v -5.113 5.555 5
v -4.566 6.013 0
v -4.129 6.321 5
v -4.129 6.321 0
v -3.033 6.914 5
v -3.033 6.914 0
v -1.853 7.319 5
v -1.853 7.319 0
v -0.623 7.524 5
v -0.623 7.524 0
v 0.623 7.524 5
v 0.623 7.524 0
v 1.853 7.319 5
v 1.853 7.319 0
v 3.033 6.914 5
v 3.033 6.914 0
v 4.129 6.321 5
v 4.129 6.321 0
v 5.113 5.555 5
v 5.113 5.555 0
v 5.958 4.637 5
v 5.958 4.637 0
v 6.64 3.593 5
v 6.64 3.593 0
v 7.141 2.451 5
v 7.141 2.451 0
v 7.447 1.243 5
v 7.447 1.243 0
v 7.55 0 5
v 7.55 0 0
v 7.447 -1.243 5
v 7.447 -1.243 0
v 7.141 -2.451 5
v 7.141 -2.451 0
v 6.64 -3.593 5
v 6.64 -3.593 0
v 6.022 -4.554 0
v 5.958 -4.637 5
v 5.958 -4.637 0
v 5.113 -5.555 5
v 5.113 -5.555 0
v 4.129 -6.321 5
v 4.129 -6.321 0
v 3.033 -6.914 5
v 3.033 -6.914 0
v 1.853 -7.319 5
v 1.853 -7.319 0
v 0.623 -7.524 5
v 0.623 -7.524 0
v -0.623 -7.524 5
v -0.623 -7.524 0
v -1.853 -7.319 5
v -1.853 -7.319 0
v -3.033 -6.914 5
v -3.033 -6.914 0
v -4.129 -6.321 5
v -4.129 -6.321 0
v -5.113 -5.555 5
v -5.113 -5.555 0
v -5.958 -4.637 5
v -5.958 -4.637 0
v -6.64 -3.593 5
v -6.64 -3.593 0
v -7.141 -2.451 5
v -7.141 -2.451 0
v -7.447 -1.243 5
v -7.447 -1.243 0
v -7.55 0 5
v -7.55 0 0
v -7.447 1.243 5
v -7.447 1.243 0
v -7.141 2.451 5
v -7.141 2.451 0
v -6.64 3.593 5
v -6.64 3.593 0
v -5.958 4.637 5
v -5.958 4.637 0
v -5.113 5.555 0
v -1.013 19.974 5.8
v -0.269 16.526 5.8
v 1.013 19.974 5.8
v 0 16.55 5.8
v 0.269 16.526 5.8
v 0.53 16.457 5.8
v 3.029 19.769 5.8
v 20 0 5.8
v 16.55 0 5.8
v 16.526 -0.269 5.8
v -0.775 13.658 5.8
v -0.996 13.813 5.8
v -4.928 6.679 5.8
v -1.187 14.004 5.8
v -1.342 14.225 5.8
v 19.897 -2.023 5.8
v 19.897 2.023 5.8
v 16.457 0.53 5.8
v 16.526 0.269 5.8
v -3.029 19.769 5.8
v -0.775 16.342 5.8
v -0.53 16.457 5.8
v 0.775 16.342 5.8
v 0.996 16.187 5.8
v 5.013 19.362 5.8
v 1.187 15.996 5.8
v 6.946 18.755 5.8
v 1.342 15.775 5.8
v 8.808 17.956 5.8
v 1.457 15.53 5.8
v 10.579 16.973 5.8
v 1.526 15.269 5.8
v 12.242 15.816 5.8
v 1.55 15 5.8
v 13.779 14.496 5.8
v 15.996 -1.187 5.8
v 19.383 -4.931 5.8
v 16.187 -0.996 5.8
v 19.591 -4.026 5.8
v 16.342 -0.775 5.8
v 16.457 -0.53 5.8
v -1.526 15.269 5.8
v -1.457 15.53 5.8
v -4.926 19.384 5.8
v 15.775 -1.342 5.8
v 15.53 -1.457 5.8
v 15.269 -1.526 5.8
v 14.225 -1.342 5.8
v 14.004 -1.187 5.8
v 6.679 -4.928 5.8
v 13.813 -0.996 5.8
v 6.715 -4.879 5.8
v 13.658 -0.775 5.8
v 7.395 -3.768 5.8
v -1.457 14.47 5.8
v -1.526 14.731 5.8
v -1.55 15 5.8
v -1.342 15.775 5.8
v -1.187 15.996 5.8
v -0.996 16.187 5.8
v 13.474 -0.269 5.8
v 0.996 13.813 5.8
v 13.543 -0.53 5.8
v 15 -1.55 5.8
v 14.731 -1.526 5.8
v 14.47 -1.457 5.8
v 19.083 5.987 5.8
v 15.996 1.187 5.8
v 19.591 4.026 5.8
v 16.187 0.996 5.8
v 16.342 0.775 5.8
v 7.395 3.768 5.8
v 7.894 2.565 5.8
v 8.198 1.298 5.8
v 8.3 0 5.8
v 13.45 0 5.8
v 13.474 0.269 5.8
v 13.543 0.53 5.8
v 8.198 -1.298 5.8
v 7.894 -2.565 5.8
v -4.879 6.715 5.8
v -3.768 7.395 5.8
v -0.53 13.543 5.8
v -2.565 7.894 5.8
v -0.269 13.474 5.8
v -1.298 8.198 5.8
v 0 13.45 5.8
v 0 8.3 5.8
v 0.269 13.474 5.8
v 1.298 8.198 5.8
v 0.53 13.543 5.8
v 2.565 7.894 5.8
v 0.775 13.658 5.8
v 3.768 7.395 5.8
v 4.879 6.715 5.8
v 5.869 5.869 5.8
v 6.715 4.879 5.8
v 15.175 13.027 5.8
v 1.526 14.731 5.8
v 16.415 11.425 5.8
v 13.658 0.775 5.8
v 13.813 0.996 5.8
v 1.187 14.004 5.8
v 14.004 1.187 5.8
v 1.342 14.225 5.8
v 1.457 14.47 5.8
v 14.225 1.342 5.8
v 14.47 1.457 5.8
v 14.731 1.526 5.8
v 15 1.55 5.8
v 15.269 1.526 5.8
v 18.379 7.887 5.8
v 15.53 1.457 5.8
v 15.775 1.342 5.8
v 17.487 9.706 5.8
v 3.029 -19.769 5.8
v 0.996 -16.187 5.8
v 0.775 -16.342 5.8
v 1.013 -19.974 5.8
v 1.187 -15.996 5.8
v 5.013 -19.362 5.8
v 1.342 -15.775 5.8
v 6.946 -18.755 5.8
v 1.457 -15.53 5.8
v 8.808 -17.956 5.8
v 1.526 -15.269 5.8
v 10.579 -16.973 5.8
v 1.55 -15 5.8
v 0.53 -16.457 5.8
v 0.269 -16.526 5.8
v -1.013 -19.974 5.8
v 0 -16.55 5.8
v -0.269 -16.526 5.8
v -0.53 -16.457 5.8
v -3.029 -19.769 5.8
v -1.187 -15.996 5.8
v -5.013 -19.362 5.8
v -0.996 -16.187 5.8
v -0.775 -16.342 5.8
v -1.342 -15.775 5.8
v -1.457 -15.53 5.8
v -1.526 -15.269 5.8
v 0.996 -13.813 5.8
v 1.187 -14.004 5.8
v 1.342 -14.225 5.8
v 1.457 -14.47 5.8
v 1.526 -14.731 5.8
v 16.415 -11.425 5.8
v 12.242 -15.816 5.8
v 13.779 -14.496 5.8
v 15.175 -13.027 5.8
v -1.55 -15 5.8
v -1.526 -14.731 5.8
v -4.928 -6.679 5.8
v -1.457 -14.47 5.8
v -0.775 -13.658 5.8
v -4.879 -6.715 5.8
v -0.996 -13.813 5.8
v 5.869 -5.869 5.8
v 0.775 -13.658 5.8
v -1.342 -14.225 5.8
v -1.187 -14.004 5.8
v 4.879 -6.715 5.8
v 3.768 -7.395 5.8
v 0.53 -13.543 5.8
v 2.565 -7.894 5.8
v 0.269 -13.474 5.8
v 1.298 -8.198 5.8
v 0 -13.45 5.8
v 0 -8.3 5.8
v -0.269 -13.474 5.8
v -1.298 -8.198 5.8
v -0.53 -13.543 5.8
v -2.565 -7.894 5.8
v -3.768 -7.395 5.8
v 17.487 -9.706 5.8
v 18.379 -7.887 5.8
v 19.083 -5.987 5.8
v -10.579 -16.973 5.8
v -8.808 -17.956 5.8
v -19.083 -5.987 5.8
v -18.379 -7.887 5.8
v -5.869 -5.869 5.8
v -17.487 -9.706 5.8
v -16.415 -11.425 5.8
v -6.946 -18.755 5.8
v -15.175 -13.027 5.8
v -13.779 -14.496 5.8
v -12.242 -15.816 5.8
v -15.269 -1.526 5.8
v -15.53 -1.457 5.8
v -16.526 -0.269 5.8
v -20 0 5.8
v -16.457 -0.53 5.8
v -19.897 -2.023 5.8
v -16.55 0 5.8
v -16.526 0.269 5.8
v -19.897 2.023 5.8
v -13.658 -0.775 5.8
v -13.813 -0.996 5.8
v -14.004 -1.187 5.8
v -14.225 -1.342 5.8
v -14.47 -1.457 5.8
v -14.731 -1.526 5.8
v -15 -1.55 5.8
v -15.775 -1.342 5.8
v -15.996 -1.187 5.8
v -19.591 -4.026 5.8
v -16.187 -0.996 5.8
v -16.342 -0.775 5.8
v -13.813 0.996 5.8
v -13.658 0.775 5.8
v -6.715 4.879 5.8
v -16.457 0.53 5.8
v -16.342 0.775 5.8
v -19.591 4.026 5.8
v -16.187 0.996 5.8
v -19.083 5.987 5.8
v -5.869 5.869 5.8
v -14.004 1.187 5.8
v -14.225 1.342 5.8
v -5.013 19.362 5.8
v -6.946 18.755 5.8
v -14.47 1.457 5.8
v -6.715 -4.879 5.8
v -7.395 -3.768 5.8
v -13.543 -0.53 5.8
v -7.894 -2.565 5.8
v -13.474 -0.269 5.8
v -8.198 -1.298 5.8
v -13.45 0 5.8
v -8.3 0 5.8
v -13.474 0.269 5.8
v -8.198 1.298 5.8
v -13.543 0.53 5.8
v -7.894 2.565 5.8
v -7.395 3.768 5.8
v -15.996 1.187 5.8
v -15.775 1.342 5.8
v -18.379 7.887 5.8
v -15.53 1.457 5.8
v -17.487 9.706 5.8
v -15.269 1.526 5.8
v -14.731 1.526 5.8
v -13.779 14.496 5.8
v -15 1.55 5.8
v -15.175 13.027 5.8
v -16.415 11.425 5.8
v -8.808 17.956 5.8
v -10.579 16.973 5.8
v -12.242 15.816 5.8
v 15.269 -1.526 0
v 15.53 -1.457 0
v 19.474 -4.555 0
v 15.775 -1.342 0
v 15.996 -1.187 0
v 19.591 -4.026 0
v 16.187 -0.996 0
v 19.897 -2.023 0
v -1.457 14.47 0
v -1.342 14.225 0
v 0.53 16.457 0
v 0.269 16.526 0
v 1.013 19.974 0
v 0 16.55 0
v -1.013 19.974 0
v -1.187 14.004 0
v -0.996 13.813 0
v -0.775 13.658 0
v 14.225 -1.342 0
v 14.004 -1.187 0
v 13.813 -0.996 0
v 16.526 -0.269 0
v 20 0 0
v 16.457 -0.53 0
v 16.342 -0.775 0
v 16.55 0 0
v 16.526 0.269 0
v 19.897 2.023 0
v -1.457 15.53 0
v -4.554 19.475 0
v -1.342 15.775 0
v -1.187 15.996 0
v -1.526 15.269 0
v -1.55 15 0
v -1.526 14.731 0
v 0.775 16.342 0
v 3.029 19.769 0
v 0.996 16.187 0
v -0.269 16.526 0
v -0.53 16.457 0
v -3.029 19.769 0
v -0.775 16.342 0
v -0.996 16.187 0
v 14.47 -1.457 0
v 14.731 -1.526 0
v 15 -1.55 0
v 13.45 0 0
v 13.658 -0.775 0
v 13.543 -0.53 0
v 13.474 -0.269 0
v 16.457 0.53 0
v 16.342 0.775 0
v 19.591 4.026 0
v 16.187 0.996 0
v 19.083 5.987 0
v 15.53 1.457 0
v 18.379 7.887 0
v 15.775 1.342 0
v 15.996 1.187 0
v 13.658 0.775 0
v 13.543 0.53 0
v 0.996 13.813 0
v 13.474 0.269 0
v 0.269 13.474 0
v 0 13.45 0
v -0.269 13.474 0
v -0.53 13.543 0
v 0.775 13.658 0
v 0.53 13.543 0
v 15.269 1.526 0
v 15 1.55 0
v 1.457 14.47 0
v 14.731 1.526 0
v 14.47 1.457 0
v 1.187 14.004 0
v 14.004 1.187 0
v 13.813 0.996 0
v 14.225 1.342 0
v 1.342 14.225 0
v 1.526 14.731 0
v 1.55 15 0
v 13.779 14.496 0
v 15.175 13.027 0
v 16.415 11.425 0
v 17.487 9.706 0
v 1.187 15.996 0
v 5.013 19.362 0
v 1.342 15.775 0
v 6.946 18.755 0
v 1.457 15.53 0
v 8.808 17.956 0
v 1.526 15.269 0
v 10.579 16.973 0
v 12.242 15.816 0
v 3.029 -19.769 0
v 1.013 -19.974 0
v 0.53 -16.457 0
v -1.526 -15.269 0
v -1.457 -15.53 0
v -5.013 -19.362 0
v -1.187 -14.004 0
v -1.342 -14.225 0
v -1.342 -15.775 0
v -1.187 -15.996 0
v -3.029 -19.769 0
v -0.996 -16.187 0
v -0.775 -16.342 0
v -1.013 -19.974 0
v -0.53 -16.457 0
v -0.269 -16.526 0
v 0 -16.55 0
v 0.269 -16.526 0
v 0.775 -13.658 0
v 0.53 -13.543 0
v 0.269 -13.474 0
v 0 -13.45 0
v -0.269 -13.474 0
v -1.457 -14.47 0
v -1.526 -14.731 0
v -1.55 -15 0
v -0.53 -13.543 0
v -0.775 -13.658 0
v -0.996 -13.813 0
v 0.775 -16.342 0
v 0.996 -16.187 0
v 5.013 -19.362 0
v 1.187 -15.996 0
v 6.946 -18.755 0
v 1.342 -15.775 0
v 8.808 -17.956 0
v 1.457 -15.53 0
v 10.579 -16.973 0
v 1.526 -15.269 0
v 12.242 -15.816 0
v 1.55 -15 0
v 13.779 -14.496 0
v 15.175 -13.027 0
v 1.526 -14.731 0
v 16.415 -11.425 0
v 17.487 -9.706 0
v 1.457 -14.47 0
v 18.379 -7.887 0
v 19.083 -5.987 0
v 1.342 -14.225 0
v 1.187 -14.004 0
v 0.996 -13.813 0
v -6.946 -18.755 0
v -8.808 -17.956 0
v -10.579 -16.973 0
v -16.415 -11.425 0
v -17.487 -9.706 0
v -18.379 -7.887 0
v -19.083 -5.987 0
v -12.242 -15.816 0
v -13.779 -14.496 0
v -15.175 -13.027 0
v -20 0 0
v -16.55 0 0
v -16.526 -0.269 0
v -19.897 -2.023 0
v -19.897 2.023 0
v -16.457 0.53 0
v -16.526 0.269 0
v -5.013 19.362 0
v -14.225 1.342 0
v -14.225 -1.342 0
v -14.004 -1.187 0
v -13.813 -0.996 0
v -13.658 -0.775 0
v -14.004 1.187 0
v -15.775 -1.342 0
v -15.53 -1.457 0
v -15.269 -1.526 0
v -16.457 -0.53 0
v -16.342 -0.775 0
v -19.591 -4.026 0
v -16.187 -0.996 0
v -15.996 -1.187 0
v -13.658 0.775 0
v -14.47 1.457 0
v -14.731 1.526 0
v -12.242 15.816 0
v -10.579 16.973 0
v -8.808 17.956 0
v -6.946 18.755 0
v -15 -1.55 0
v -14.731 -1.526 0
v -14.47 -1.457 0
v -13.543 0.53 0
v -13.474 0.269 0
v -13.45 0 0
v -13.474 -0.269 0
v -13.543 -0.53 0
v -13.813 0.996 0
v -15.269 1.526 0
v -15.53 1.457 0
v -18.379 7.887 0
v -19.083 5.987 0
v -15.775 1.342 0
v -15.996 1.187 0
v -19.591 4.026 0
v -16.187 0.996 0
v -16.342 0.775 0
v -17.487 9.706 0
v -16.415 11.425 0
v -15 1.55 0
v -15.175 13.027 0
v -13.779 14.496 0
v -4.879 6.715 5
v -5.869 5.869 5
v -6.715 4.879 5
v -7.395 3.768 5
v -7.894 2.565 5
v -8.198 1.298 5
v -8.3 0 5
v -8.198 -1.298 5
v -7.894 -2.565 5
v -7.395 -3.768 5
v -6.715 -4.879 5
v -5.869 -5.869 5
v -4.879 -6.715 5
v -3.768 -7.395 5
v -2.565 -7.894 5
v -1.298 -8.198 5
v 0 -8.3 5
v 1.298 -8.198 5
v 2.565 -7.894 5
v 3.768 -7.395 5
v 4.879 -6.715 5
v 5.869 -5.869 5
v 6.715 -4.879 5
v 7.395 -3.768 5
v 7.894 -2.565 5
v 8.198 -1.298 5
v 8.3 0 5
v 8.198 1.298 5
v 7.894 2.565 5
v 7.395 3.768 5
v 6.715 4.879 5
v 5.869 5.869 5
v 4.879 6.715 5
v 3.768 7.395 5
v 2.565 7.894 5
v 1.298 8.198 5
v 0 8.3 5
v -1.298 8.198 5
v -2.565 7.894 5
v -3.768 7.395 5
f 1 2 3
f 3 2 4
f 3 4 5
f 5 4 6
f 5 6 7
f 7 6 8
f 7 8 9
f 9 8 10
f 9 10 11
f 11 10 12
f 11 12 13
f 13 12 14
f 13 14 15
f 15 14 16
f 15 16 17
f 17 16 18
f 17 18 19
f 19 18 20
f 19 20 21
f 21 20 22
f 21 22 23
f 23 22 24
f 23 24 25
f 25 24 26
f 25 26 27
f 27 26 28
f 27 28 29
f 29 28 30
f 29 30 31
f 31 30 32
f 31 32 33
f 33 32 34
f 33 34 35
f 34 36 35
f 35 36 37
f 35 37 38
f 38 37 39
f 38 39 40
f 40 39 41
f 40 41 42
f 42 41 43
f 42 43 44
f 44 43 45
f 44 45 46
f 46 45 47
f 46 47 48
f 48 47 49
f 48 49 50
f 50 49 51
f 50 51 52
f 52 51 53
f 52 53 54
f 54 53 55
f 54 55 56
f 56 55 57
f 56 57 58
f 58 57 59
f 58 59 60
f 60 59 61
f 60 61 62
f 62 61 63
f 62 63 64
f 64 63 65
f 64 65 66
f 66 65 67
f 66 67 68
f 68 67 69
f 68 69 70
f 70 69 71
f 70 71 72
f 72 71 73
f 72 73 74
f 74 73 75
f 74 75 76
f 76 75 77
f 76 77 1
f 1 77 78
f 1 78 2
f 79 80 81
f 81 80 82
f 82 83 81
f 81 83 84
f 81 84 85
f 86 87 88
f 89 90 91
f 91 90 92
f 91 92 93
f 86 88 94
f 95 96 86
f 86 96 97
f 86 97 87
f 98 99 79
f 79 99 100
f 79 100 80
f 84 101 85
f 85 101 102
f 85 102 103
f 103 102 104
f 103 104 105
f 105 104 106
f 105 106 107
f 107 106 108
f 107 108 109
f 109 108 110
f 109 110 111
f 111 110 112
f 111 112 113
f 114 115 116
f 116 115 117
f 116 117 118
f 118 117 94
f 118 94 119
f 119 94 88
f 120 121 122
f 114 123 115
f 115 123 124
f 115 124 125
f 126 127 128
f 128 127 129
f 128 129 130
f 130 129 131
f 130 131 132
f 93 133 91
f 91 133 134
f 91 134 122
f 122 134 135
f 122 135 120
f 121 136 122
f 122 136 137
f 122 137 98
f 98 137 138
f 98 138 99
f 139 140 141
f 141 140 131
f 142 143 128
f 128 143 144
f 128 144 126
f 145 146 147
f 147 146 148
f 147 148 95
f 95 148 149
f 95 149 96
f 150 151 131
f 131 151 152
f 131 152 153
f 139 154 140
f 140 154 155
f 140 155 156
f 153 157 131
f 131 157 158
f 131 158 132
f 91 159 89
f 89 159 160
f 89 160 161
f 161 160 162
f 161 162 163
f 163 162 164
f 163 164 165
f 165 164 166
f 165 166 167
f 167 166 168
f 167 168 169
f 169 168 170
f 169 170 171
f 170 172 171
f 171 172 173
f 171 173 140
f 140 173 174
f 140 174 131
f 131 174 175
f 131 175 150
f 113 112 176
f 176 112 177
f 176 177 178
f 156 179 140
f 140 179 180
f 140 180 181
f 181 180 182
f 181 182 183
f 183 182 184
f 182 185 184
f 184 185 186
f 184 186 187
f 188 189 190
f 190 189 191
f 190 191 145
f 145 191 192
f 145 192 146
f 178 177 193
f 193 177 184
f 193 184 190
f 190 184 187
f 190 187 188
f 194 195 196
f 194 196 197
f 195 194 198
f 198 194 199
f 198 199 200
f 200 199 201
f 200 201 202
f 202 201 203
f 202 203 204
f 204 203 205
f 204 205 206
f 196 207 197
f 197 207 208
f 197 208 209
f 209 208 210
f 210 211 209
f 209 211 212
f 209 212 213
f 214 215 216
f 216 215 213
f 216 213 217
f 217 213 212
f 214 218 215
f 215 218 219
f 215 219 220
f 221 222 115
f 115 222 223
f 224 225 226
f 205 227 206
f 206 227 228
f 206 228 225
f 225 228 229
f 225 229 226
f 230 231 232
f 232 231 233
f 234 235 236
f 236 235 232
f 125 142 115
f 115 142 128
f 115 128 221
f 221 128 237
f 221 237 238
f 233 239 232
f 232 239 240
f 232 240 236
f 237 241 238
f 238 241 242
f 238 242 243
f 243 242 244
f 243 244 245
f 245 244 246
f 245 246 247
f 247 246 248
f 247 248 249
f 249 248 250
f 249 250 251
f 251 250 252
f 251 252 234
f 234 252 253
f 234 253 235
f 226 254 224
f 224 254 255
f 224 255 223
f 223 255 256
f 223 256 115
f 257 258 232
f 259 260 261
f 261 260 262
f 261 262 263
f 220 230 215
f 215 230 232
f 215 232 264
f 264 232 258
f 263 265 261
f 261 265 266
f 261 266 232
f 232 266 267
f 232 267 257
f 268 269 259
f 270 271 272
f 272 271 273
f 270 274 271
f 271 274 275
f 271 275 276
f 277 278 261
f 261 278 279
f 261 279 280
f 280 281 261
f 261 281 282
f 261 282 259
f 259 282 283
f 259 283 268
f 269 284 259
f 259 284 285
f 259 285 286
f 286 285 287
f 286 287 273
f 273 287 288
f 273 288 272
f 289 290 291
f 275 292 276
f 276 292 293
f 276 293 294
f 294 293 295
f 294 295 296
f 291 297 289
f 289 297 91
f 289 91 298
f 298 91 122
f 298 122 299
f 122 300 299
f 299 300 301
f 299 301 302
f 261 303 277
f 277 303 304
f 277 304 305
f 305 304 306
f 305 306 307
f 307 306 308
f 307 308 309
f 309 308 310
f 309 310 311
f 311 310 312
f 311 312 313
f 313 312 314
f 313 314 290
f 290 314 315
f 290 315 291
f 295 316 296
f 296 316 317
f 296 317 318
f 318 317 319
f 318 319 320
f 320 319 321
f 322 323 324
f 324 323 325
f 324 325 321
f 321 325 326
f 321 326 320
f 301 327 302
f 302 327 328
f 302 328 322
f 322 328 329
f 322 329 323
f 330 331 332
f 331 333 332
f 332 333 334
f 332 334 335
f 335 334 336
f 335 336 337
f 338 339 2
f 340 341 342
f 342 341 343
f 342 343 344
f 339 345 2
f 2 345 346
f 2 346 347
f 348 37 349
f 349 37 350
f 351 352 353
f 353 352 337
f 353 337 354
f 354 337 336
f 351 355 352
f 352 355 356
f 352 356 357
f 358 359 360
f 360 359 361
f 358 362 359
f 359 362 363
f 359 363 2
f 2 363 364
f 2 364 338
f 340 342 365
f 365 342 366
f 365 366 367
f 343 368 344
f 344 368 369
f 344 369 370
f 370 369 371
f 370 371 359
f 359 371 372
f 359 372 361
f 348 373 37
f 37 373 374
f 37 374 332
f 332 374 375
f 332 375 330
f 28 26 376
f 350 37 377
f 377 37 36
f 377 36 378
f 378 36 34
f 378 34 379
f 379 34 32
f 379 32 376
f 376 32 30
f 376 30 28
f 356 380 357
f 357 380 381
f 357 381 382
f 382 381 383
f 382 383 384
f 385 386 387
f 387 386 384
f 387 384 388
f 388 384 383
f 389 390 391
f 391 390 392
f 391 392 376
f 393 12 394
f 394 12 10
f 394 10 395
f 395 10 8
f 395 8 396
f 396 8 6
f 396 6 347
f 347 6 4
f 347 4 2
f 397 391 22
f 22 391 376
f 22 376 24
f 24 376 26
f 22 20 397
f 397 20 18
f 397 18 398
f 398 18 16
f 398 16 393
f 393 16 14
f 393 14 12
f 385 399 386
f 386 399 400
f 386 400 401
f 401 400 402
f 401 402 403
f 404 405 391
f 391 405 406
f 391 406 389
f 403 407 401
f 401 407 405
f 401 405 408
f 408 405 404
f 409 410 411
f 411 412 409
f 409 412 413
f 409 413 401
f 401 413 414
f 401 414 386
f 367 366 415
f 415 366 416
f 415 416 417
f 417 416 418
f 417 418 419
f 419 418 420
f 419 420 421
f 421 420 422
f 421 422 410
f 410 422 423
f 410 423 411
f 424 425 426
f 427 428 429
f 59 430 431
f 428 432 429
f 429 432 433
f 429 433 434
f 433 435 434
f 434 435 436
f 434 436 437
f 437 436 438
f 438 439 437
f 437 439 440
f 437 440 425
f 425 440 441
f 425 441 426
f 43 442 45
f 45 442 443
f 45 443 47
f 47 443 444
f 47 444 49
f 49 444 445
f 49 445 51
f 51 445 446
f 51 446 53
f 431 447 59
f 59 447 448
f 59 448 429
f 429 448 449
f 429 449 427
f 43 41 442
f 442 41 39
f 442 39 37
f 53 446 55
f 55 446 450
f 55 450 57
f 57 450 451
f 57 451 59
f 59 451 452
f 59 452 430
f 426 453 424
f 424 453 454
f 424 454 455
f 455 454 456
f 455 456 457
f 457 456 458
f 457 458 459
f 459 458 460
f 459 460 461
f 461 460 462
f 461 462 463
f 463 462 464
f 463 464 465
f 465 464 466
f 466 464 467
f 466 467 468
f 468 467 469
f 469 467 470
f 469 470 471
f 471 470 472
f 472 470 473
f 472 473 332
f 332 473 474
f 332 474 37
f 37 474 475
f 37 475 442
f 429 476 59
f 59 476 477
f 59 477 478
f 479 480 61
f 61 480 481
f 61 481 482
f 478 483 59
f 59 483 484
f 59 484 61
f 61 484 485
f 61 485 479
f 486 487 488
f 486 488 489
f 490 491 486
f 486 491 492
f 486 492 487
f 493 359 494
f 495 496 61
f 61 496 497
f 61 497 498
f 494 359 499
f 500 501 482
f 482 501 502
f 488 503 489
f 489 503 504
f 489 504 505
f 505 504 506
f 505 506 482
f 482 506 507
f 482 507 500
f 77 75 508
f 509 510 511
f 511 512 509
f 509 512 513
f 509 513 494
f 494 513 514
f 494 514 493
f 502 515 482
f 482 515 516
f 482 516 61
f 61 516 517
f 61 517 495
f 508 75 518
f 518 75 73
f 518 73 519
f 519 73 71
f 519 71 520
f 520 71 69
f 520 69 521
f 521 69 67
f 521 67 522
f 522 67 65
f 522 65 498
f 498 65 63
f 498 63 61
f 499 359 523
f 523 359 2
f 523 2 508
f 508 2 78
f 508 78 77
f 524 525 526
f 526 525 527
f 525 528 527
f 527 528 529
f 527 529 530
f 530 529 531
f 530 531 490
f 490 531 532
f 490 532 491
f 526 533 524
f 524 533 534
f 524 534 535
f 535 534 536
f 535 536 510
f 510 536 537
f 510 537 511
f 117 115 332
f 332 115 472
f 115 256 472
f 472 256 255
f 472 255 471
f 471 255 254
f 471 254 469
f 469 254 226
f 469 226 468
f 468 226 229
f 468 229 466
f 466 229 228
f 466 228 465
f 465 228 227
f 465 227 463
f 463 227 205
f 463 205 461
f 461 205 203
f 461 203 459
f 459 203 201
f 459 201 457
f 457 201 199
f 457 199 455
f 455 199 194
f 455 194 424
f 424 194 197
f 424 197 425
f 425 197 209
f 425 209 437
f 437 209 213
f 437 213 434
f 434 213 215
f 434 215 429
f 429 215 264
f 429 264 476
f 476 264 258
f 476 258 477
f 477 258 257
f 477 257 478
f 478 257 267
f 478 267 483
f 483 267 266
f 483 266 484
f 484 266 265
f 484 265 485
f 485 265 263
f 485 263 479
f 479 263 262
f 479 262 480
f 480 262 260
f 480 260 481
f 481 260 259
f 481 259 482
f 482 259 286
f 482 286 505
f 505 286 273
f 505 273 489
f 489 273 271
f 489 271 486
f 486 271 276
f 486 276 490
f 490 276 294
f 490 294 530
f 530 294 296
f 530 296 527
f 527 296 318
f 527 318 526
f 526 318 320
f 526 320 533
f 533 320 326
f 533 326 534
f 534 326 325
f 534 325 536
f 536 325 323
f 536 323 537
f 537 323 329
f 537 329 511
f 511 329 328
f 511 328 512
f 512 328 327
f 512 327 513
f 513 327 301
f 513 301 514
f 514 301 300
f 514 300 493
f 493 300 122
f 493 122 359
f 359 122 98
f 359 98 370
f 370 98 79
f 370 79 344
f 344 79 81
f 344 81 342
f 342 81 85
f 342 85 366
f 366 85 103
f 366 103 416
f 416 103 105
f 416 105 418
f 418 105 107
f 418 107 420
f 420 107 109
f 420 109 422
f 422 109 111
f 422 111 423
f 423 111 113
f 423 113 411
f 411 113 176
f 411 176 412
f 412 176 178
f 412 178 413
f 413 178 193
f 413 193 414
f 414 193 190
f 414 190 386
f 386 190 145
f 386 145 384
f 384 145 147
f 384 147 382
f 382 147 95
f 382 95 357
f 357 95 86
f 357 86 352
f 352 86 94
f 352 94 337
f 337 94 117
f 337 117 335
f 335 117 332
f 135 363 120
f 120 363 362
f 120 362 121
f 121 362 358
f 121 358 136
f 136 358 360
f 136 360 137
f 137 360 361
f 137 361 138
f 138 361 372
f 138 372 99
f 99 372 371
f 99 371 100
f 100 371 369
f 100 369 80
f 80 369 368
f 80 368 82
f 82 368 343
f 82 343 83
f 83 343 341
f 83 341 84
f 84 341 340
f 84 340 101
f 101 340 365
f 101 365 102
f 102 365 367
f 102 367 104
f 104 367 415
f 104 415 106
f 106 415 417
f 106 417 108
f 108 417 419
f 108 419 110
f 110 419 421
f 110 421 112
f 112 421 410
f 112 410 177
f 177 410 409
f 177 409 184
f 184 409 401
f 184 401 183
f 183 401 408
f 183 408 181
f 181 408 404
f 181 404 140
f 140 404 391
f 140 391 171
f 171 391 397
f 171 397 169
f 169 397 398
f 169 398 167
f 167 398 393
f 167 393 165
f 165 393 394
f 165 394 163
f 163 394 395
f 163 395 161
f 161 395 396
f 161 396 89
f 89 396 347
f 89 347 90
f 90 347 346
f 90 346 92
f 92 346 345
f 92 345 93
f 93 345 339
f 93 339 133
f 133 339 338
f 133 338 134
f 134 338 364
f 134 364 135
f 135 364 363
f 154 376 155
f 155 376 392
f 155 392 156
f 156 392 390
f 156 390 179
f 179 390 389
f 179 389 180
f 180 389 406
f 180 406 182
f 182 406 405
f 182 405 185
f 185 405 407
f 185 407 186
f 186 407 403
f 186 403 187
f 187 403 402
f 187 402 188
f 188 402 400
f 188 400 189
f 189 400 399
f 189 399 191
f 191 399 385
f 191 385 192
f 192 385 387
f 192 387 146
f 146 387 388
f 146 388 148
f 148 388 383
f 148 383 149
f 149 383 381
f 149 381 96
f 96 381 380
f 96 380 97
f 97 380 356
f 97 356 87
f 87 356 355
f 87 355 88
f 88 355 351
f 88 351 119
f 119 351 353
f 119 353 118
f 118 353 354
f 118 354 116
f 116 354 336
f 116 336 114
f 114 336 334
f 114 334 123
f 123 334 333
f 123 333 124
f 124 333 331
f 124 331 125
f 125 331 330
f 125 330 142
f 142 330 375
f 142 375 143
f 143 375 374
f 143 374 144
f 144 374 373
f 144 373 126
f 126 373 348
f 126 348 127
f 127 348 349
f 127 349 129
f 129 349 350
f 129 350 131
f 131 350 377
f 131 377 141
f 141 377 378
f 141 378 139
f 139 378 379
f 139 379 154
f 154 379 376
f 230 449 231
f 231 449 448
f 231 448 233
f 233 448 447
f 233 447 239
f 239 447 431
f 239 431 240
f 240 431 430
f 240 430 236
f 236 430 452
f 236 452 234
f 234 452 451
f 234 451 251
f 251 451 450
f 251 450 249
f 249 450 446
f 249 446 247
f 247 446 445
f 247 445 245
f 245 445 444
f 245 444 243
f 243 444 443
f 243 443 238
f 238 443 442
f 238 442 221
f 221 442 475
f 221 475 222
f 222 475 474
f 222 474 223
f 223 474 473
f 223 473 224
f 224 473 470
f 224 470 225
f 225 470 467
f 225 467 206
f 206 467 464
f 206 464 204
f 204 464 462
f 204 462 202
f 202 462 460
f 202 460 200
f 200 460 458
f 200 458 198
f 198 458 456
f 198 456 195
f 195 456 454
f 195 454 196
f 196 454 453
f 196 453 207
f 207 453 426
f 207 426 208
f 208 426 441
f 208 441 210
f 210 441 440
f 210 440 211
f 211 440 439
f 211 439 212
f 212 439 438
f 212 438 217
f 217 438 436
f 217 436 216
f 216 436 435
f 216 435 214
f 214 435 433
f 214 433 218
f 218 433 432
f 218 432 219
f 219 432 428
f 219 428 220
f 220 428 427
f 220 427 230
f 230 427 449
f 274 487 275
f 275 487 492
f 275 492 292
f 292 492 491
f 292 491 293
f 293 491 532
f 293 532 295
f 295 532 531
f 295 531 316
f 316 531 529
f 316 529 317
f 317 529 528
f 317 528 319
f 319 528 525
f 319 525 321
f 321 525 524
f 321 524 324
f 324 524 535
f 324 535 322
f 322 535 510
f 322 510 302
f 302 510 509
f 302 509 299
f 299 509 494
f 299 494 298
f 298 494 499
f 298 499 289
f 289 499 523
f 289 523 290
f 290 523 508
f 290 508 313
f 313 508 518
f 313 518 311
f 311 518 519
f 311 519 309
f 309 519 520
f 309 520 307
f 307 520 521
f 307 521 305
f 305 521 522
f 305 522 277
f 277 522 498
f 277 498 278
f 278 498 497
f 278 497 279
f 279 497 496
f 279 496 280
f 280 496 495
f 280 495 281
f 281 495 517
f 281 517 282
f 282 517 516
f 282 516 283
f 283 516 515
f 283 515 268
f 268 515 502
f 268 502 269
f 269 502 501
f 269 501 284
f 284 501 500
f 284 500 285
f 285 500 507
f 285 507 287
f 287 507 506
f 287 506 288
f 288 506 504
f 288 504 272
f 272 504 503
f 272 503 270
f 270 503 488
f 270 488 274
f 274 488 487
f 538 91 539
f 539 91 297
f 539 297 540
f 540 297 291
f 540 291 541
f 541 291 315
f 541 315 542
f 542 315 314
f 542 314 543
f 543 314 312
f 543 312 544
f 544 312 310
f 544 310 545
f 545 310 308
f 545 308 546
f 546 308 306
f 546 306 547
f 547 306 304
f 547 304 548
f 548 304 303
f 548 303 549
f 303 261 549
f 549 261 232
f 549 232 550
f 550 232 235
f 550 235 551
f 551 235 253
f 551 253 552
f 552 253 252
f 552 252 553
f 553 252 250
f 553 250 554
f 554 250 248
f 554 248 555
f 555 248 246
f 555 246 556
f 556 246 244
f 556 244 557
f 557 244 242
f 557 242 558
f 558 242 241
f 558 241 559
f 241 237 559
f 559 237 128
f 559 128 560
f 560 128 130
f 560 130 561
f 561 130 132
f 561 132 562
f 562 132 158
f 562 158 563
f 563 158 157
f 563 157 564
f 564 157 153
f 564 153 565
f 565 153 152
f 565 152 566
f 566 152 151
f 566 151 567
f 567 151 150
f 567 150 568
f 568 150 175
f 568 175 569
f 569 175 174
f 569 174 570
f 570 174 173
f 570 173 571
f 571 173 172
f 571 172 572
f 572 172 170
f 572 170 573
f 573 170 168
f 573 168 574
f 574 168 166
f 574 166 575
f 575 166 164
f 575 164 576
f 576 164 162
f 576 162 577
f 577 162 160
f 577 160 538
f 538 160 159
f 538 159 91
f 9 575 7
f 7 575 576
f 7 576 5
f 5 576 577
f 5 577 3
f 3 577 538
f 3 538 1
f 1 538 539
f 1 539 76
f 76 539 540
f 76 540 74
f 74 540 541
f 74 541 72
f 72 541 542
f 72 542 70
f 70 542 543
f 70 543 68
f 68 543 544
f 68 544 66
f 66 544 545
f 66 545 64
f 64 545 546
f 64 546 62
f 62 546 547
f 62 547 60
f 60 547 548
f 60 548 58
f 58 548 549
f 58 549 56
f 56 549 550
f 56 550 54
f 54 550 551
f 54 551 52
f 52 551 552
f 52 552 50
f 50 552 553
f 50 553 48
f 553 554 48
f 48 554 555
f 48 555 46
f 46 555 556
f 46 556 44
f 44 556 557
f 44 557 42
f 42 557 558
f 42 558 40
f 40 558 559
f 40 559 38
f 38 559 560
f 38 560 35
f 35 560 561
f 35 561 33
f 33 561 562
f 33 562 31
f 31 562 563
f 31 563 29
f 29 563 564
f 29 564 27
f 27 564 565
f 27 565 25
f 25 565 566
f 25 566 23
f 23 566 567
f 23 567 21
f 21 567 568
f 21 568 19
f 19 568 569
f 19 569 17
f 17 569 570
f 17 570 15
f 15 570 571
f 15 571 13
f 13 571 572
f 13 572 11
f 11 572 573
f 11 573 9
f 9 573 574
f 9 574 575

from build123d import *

# Parameters (mm, degrees)
SKETCH_1_R          = 20
SKETCH_1_R_2        = 7.55
SKETCH_1_R_3        = 1.55
EXTRUDE_1_DEPTH     = 5.8
SKETCH_2_R          = 8.3
CUT_EXTRUDE_1_DEPTH = 0.8


with BuildPart() as part:
    # ｽｹｯﾁ1 → ﾎﾞｽ - 押し出し1 (new body)
    with BuildSketch(Plane.XY):
        Circle(SKETCH_1_R)
        Circle(SKETCH_1_R_2, mode=Mode.SUBTRACT)
        with Locations((0, 15)):
            Circle(SKETCH_1_R_3, mode=Mode.SUBTRACT)
        with Locations((15, 0)):
            Circle(SKETCH_1_R_3, mode=Mode.SUBTRACT)
        with Locations((0, -15)):
            Circle(SKETCH_1_R_3, mode=Mode.SUBTRACT)
        with Locations((-15, 0)):
            Circle(SKETCH_1_R_3, mode=Mode.SUBTRACT)
    extrude(amount=EXTRUDE_1_DEPTH)

    # ｽｹｯﾁ2 → ｶｯﾄ - 押し出し1 (cut)
    with BuildSketch(Plane.XY.offset(5.8)):
        Circle(SKETCH_2_R)
    extrude(amount=-CUT_EXTRUDE_1_DEPTH, mode=Mode.SUBTRACT)


solid = part.part
